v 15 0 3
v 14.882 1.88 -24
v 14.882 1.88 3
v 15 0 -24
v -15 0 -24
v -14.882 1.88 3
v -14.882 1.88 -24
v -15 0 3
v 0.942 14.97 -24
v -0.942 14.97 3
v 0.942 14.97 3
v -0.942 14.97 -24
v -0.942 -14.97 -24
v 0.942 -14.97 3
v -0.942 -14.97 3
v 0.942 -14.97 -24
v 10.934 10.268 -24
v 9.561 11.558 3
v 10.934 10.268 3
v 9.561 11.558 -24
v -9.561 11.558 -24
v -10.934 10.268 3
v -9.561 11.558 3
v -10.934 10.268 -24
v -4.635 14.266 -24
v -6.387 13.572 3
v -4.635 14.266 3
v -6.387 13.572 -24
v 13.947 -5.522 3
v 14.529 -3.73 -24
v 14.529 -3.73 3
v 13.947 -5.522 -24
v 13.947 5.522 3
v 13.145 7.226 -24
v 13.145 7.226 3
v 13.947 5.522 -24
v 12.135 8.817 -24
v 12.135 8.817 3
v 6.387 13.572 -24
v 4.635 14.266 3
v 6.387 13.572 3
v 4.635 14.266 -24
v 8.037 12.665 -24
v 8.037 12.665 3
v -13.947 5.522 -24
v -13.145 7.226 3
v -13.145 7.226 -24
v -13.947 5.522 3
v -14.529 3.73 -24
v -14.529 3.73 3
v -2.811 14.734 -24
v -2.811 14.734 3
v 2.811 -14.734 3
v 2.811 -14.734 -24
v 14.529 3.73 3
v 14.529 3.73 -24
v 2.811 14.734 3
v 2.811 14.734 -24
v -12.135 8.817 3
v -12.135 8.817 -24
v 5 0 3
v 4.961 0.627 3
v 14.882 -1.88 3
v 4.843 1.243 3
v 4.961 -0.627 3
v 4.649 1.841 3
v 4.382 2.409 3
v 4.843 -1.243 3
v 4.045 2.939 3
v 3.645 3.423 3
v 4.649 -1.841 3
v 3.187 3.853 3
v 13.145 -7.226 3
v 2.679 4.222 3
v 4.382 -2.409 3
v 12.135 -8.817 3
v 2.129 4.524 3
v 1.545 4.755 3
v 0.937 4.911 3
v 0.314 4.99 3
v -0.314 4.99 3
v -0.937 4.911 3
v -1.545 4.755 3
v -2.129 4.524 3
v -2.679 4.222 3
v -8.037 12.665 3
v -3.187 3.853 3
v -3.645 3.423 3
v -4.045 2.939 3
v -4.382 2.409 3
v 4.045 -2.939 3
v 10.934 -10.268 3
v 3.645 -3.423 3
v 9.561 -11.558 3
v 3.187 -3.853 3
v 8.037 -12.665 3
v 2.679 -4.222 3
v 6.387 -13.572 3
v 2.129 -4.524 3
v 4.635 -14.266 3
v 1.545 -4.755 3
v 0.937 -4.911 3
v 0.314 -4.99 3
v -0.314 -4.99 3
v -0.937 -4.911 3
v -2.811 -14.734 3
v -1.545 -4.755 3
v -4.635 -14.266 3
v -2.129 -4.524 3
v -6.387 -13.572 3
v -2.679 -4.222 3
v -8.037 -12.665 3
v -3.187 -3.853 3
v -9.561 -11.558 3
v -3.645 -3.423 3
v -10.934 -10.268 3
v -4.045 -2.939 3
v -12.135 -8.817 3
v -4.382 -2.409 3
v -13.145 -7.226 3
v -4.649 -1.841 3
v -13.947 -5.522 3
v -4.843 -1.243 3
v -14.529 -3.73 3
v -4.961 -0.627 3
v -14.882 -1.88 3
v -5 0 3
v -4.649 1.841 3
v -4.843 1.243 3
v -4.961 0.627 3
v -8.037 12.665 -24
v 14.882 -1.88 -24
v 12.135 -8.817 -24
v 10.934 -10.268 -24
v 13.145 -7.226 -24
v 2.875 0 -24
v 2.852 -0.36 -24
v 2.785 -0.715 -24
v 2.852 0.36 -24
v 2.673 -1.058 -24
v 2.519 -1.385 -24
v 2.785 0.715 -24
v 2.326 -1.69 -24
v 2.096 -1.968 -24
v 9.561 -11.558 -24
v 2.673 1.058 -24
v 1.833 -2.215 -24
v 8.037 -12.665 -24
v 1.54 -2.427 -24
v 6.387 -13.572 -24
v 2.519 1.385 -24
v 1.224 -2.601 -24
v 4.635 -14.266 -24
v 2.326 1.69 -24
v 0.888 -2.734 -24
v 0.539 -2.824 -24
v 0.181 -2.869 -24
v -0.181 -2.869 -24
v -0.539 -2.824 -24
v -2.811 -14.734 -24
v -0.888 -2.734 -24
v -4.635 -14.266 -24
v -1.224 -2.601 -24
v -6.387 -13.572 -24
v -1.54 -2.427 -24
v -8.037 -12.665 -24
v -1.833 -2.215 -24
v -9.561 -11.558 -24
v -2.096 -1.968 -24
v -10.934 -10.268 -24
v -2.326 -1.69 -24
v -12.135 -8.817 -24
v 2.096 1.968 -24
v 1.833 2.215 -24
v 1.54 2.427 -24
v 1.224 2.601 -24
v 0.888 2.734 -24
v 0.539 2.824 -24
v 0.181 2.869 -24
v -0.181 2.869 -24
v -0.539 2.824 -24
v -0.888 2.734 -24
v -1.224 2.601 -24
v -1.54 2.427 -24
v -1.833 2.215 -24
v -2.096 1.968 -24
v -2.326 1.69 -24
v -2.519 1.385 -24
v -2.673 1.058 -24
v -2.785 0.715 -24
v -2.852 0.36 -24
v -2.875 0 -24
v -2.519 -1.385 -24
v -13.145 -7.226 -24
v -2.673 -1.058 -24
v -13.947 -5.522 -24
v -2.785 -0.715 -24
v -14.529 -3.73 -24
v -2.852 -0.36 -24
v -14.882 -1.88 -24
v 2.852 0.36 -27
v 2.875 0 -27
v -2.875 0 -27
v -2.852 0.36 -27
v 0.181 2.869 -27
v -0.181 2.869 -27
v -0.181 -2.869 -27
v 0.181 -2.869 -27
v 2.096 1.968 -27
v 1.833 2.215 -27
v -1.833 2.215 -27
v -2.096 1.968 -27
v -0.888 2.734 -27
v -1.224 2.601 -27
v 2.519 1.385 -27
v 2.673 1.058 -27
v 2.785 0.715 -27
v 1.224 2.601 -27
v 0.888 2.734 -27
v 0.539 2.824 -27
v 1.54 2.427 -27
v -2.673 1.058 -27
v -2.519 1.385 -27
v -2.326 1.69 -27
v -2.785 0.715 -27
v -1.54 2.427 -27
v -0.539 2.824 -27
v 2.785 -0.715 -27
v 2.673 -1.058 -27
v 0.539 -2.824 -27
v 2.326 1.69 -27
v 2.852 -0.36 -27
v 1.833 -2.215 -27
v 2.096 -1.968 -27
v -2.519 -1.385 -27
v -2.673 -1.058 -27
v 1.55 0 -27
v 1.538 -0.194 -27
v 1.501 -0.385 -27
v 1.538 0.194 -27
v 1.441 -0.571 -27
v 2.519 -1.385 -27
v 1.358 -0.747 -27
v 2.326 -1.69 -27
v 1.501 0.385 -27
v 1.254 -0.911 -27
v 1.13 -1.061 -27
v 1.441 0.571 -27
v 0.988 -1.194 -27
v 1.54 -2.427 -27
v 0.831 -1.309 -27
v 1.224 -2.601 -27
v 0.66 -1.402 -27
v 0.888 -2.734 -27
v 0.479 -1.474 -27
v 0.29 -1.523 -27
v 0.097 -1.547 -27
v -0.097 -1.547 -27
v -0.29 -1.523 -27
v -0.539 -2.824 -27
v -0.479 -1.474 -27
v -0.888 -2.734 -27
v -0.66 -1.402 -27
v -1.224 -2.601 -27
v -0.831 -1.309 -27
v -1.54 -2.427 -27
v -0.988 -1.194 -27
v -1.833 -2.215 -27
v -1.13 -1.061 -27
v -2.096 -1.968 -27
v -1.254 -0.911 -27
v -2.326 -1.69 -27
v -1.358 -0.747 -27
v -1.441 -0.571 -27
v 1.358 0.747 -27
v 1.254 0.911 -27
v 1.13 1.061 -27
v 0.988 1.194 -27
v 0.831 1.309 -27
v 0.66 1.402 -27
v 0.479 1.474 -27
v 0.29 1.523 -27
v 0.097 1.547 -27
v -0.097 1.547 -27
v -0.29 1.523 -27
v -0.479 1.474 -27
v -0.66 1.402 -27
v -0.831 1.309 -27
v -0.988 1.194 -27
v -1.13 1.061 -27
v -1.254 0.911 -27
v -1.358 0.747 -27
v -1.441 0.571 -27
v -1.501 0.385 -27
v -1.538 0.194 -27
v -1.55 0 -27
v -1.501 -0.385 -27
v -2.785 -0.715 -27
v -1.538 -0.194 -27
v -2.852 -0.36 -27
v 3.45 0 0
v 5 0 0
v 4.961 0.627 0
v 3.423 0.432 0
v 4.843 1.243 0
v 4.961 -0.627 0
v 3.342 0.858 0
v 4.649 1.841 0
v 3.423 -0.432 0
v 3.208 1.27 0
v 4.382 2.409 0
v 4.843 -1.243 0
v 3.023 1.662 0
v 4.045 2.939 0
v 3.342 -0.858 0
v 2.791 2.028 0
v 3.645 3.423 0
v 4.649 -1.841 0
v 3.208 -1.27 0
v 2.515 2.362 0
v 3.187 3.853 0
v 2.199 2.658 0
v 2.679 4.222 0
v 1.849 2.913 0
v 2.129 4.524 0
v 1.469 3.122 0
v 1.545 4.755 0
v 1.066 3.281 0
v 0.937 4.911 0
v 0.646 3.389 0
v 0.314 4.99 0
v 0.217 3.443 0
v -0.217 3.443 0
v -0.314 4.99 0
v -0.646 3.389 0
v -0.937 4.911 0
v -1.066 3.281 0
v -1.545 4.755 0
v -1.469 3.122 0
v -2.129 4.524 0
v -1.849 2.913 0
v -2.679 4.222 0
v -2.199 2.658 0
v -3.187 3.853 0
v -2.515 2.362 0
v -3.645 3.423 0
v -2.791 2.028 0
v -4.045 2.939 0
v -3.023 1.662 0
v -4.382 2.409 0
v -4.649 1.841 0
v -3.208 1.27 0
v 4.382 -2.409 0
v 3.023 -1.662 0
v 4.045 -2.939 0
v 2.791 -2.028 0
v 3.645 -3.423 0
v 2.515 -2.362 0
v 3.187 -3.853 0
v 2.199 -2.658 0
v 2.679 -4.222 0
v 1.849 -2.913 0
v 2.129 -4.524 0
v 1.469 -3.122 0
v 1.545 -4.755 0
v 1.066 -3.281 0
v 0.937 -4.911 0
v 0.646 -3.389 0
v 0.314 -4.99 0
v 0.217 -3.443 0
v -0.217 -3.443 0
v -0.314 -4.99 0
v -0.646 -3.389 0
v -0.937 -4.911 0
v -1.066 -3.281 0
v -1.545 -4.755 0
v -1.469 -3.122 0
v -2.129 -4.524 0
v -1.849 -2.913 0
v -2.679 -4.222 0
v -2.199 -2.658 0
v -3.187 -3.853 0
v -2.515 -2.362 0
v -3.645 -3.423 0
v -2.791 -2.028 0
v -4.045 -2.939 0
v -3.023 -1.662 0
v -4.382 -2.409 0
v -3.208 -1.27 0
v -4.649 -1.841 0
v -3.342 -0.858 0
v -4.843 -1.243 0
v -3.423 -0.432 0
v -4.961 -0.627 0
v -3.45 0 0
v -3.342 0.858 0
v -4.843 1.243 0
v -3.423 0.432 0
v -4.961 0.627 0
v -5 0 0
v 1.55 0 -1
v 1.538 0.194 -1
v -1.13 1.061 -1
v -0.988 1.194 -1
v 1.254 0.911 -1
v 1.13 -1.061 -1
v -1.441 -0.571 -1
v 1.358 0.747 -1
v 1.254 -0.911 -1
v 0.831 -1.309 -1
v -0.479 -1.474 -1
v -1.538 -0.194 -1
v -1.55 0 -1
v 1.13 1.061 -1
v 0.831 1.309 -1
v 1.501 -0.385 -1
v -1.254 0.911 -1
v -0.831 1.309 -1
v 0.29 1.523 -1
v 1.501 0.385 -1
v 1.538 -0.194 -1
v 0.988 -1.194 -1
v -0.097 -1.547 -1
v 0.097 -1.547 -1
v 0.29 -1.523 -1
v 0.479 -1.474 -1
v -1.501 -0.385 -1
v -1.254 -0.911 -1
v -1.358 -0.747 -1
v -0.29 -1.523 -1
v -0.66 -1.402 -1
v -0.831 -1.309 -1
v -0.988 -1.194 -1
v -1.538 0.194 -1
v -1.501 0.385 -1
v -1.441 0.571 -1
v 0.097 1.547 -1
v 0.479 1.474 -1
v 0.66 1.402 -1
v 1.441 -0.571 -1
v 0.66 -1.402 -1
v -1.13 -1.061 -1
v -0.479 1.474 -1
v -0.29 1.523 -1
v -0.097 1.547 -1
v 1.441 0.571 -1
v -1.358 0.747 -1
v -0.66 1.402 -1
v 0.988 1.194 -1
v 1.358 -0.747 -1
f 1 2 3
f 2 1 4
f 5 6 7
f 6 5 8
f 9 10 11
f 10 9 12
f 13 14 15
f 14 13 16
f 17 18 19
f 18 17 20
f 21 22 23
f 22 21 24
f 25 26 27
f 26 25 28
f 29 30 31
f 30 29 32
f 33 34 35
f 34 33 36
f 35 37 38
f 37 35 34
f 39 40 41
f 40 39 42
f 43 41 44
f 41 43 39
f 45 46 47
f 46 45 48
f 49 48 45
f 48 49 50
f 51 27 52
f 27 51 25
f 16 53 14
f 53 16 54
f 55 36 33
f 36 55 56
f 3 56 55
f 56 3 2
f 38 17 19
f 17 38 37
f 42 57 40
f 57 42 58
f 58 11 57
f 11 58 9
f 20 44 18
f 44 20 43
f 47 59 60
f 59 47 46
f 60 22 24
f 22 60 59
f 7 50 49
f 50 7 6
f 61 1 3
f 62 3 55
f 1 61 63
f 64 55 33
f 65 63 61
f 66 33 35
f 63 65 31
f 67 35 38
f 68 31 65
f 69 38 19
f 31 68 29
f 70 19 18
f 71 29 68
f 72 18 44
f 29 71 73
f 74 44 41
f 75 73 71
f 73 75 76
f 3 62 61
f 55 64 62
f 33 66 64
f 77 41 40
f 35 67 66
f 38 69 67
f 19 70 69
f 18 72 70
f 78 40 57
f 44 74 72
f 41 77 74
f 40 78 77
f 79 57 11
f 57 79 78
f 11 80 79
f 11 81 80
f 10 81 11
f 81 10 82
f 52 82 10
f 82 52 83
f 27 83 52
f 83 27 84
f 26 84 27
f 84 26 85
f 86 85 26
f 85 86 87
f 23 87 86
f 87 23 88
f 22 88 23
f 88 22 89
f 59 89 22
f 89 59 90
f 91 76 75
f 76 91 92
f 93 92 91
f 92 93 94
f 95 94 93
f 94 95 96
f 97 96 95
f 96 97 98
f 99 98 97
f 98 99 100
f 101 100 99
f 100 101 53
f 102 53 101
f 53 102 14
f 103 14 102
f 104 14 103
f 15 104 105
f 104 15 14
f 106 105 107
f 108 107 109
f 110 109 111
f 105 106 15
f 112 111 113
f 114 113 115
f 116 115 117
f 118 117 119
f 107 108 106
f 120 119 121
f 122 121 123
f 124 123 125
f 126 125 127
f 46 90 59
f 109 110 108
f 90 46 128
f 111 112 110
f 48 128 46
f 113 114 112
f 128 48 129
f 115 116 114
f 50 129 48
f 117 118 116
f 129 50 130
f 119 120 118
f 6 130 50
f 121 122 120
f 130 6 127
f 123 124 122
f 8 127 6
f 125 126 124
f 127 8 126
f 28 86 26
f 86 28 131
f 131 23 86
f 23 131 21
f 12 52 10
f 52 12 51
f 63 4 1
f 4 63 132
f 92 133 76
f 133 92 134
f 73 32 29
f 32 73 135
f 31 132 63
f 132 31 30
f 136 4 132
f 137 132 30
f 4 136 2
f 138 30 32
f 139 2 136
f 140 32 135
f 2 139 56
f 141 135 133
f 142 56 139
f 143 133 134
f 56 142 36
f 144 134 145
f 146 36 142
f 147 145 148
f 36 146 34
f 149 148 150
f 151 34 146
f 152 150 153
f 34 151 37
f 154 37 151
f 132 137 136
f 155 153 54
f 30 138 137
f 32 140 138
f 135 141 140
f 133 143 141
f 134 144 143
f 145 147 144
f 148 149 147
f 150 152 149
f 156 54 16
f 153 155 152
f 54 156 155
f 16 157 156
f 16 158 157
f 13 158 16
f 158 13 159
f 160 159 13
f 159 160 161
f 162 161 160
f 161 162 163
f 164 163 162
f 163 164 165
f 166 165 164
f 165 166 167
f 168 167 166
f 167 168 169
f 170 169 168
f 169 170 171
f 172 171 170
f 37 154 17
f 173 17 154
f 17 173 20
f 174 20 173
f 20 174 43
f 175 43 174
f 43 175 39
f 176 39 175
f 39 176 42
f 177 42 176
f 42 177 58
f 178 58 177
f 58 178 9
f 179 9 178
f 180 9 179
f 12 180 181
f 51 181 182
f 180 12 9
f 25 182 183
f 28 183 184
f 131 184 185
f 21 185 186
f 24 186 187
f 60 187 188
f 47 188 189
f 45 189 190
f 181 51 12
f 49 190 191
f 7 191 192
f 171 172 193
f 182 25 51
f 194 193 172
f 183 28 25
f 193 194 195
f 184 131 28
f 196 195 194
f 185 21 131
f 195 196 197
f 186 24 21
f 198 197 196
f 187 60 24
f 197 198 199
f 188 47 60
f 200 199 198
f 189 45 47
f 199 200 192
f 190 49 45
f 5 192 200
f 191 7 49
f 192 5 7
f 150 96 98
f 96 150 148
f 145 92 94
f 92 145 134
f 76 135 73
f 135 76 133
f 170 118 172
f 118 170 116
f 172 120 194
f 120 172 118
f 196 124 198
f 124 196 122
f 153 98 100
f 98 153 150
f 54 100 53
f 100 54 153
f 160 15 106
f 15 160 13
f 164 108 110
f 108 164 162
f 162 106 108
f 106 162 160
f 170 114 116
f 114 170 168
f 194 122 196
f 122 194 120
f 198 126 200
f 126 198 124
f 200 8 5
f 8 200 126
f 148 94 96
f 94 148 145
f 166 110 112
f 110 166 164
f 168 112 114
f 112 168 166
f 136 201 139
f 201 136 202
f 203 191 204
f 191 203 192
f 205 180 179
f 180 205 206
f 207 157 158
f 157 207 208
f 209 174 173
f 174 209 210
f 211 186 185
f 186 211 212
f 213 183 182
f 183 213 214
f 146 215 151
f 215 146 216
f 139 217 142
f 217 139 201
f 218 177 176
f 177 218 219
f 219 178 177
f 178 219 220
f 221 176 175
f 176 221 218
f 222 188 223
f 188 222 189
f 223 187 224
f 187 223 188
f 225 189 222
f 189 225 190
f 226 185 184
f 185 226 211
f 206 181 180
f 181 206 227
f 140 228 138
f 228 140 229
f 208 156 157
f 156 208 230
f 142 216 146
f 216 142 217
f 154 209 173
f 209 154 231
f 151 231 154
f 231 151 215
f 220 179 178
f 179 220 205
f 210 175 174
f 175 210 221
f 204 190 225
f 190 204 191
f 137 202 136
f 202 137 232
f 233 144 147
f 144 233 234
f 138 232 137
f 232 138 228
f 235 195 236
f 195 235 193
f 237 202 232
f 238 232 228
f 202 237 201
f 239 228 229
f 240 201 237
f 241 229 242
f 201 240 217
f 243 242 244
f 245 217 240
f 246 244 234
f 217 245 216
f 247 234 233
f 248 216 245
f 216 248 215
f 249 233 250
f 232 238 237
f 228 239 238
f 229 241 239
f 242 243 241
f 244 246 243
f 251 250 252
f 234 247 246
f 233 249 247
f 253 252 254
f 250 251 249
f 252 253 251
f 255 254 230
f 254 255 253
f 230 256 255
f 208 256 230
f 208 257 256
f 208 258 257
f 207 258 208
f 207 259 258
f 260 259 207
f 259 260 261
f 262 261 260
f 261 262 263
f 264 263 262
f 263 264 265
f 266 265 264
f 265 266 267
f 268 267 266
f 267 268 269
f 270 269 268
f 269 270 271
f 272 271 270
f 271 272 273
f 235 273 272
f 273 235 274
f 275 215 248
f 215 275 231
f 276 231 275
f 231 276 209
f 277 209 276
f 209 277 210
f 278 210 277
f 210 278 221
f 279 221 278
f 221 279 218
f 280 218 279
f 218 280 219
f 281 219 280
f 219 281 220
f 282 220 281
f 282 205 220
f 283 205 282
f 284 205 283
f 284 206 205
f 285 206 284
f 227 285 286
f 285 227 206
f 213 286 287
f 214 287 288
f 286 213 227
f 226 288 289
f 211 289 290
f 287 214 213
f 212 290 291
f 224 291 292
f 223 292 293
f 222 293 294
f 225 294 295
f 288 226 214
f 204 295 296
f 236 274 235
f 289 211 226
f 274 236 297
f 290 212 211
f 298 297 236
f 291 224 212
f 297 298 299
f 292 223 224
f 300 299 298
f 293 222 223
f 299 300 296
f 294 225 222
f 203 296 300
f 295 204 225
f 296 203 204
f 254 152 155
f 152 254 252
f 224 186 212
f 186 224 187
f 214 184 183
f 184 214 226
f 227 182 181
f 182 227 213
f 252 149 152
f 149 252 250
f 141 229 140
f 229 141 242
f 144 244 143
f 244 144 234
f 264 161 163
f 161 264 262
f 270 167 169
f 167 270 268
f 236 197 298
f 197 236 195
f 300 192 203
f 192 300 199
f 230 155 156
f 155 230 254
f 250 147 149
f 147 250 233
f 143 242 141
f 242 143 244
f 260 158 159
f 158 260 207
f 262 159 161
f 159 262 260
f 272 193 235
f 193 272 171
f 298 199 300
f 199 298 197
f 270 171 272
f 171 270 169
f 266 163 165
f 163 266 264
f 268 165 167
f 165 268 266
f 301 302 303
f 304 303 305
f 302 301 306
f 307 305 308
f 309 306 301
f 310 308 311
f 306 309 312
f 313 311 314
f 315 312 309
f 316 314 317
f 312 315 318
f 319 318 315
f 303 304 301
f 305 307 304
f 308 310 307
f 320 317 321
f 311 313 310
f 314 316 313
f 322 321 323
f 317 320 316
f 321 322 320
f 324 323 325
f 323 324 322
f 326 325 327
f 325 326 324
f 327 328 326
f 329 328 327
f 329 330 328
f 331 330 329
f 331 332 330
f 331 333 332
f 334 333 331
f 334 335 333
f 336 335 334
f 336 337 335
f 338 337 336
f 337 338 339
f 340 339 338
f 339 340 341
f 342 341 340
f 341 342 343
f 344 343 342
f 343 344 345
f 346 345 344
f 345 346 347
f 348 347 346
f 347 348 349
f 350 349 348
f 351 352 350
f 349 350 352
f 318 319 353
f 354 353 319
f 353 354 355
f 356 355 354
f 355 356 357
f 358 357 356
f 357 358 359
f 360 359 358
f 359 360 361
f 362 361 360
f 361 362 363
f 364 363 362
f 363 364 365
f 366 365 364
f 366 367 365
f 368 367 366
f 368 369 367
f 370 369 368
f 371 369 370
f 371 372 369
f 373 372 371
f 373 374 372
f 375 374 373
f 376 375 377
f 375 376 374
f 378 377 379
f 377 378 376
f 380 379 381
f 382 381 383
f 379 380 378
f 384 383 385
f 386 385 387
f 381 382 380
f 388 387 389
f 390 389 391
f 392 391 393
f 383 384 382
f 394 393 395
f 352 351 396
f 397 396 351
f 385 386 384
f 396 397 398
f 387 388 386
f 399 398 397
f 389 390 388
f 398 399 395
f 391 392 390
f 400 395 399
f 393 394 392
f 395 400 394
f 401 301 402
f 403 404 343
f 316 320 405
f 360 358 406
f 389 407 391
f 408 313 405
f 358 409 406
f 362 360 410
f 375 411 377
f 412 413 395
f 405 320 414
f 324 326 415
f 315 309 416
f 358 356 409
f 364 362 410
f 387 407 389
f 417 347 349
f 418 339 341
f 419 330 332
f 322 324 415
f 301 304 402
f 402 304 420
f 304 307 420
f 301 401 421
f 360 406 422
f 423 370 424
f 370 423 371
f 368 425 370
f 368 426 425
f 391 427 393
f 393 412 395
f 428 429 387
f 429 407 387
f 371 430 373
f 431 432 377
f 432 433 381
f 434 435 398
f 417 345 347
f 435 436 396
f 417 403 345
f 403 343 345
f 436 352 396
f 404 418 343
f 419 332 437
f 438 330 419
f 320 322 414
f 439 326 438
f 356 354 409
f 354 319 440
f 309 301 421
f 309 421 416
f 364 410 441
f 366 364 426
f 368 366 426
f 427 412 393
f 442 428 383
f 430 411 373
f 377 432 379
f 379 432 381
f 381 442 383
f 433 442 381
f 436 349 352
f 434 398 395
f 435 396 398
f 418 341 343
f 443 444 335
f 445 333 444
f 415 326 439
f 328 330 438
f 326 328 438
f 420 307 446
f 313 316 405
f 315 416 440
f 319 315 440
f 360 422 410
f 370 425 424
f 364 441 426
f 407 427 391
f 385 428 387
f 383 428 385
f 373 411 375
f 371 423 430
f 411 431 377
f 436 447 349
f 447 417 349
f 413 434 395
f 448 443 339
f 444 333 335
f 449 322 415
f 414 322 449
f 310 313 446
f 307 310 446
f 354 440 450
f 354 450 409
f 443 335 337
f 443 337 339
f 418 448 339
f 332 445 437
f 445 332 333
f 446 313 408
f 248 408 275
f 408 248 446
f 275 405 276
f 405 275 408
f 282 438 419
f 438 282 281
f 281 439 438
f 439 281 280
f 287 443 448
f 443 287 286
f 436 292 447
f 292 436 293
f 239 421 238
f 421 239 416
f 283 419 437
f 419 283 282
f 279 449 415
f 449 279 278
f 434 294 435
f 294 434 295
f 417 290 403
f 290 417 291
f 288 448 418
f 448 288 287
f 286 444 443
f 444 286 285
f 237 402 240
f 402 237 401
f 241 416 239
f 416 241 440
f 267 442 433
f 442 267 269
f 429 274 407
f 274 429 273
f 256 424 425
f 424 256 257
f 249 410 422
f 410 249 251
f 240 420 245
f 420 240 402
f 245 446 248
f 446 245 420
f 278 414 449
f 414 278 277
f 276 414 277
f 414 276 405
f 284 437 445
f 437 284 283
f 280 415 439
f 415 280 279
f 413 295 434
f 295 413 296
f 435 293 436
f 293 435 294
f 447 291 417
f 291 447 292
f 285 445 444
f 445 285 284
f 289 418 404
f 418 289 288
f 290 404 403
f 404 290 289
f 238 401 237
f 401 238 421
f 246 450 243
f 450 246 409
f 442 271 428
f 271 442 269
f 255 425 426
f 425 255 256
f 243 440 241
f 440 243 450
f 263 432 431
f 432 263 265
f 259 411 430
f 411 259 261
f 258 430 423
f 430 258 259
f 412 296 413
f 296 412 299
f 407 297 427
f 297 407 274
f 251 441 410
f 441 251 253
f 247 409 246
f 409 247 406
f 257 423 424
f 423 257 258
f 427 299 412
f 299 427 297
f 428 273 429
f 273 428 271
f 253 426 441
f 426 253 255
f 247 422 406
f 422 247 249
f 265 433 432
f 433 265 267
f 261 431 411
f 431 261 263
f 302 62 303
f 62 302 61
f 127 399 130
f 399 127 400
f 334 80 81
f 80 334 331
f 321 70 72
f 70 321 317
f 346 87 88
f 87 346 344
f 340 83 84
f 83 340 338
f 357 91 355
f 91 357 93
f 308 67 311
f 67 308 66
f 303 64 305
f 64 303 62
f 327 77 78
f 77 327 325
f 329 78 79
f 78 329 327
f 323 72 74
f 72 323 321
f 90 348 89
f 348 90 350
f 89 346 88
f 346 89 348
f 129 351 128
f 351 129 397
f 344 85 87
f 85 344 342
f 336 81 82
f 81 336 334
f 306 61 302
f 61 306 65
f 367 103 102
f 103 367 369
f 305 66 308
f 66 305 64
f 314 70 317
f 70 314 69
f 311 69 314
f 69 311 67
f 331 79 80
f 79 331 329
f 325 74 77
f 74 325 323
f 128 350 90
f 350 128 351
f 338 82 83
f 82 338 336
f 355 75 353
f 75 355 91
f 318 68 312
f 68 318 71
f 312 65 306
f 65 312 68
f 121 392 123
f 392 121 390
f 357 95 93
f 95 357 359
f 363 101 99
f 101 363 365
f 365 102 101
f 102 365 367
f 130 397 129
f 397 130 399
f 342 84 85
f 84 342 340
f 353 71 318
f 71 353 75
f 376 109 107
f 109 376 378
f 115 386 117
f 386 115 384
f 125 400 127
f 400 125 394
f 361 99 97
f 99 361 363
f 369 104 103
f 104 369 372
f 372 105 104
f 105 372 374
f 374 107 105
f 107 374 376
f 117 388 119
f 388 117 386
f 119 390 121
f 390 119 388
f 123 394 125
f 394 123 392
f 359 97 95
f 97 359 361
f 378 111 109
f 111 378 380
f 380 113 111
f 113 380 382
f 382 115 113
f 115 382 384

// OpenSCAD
$fn = 50;

difference() {
	union() {
		translate(v = [0, 0, -24.0]) {
			cylinder(h = 27, r = 15.0);
		}
		#translate(v = [0, 0, -27.0]) {
			cylinder(h = 27, r = 2.875);
		}
	}
	union() {
		translate(v = [0, 0, 0]) {
			rotate(a = [0, 0, 0]) {
				difference() {
					union() {
						translate(v = [0, 0, -27.0]) {
							cylinder(h = 27, r = 1.25);
						}
						translate(v = [0, 0, -1.0]) {
							cylinder(h = 1.0, r1 = 1.55, r2 = 3.45);
						}
						translate(v = [0, 0, -27.0]) {
							cylinder(h = 27, r = 1.55);
						}
						translate(v = [0, 0, -27.0]) {
							cylinder(h = 27, r = 1.25);
						}
					}
					union();
				}
			}
		}
		#cylinder(h = 3, r = 5.0);
	}
}
